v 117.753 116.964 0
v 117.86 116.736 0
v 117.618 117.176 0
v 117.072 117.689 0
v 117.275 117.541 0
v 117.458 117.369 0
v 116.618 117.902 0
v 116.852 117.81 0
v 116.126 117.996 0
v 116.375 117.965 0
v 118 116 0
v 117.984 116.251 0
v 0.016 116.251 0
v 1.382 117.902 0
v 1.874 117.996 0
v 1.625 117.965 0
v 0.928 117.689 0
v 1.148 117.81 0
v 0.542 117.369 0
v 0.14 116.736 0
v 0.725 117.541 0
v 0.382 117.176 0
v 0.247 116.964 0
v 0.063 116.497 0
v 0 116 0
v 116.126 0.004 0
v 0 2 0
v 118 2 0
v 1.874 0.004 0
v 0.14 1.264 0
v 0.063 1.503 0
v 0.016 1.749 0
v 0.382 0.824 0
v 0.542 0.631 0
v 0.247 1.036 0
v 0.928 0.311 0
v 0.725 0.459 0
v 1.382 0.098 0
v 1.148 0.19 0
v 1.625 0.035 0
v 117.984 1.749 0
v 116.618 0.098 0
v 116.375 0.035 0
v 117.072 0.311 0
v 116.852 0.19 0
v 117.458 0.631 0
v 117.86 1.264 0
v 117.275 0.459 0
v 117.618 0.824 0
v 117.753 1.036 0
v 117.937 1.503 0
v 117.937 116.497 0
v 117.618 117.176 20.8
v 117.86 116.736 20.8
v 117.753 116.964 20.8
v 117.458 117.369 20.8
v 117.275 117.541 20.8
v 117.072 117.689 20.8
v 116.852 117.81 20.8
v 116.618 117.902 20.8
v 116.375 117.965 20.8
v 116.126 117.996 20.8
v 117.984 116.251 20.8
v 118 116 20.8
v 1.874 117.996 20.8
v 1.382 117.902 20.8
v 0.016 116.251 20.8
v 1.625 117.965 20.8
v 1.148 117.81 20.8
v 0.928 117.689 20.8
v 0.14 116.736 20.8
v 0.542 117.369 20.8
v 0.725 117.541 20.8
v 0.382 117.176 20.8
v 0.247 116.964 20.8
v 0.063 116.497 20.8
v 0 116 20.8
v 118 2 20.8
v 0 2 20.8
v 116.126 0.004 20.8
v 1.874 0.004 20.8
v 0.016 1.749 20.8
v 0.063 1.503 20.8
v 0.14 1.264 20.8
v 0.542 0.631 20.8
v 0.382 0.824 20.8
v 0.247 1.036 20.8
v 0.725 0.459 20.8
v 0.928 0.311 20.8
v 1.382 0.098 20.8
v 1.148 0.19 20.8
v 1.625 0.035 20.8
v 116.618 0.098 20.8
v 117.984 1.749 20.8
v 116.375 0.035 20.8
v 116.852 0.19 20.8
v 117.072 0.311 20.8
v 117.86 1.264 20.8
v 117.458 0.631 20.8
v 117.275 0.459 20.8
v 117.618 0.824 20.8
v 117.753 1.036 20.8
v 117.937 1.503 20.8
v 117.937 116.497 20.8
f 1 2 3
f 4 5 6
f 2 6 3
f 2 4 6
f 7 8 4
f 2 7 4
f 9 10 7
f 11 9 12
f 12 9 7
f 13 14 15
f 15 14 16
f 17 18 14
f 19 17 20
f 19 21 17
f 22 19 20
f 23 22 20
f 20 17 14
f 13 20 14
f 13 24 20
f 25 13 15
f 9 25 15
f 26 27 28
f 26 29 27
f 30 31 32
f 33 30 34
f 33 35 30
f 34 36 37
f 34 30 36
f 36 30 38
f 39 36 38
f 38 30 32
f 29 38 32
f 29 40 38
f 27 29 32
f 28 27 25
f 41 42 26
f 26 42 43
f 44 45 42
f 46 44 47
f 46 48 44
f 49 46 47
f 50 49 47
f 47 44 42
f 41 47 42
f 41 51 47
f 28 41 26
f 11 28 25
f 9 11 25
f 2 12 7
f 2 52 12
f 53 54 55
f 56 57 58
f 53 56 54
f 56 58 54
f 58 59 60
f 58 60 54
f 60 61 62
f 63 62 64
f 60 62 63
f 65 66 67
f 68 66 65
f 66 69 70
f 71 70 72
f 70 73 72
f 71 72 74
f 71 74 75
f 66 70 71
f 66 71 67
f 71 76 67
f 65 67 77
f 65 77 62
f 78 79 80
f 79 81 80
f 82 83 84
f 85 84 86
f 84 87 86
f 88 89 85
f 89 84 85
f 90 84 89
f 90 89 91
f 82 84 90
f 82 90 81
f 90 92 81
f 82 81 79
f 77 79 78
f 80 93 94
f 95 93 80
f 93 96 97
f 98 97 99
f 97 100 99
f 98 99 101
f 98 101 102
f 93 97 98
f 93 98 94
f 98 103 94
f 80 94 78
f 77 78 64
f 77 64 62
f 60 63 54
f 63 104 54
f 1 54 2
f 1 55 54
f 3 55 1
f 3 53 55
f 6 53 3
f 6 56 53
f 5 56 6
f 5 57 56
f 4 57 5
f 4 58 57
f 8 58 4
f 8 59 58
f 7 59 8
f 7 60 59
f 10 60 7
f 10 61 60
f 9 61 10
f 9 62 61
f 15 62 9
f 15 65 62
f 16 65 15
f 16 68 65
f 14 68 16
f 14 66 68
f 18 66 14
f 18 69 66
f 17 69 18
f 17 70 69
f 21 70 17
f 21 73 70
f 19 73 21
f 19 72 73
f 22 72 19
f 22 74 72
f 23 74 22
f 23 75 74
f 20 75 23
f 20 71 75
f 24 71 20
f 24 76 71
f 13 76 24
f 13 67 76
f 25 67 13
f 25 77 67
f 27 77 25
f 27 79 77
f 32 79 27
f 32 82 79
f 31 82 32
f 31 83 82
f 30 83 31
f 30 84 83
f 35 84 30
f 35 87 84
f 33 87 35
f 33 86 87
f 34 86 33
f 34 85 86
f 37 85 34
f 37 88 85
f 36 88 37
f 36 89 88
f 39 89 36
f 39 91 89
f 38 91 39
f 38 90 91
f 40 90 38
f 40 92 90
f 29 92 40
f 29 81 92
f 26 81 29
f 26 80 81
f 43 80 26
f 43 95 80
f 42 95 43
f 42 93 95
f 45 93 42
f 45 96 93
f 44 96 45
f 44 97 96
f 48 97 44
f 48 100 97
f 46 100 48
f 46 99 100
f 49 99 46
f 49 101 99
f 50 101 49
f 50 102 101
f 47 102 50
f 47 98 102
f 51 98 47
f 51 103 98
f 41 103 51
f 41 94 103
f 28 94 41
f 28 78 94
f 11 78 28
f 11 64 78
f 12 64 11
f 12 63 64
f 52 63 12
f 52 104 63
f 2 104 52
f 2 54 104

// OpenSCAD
// file: ../../lib/rounded_square.scad
$bleed = 1;
$rounding = 3;

module rounded_square(size) {
  inner_size = [
    size[0] - $rounding * 2,
    size[1] - $rounding * 2,
  ];

  minkowski() {
    translate([$rounding, $rounding, 0]) {
      square(inner_size);
    }
    circle($rounding);
  }
}
// file: ../../lib/rounded_cube.scad
include <./rounded_square.scad>

$bleed = 1;
$rounding = 3;

// Render a rounded cube
// flat_top: do not round the top edges
// flat_bottom: do not round the bottom edges
// flat: equals flat_top && flat_bottom
// 
// Limitations:
// requires height > $rounding * 2
// flat_top || flat_bottom requires height > $rounding
// flat_top && flat_bottom requires height > $bleed
module rounded_cube(
  size, 
  flat=false, 
  flat_top=false, 
  flat_bottom=false,
  side_rounding=-1
) {
  _flat = flat || (flat_top && flat_bottom);
  _flat_top = flat_top || flat;
  _flat_bottom = flat_bottom || flat;
  _rounding = min($rounding, size[2] / 2);
  _side_rounding = side_rounding > -1 ? side_rounding: $rounding;

  assert(_side_rounding >= $rounding, "side rounding cannot be less than rounding");

  top_height = _flat_top ? 0: _rounding;
  bottom_height = _flat_bottom ? 0: _rounding;

  cube_size = [
    size[0] - _rounding * 2,
    size[1] - _rounding * 2,
    size[2] - (top_height + bottom_height)
  ];

  if (_flat_top && _flat_bottom) {
     linear_extrude(cube_size[2]) {
       rounded_square([size[0], size[1]]);
     }
  } else {
    minkowski() {
      translate([_rounding, _rounding, bottom_height]) {
        if (_side_rounding != _rounding) {
          linear_extrude(cube_size[2]) {
            rounded_square([cube_size[0], cube_size[1]], $rounding=_side_rounding);
          }
        } else {
          cube(cube_size);
        }
      }

      if (_flat_top) {
        difference() {
          sphere(_rounding);
          cylinder(_rounding, _rounding, _rounding);
        }
      } else if (_flat_bottom) {
        difference() {
          sphere(_rounding);
          translate ([0, 0, -_rounding]) {
            cylinder(_rounding, _rounding, _rounding);
          }
        }
      } else {
        sphere(_rounding);
      }
    }
  }
}
// main file
include <../../lib/rounded_cube.scad>

$rounding = 2;
$wall_thickness = 2;
$fn = 50;
$bleed = 0.01;

length = 118;
width = 118;
height = 20.8;

rounded_cube([length, width, height], flat=true, $rounding=2);
